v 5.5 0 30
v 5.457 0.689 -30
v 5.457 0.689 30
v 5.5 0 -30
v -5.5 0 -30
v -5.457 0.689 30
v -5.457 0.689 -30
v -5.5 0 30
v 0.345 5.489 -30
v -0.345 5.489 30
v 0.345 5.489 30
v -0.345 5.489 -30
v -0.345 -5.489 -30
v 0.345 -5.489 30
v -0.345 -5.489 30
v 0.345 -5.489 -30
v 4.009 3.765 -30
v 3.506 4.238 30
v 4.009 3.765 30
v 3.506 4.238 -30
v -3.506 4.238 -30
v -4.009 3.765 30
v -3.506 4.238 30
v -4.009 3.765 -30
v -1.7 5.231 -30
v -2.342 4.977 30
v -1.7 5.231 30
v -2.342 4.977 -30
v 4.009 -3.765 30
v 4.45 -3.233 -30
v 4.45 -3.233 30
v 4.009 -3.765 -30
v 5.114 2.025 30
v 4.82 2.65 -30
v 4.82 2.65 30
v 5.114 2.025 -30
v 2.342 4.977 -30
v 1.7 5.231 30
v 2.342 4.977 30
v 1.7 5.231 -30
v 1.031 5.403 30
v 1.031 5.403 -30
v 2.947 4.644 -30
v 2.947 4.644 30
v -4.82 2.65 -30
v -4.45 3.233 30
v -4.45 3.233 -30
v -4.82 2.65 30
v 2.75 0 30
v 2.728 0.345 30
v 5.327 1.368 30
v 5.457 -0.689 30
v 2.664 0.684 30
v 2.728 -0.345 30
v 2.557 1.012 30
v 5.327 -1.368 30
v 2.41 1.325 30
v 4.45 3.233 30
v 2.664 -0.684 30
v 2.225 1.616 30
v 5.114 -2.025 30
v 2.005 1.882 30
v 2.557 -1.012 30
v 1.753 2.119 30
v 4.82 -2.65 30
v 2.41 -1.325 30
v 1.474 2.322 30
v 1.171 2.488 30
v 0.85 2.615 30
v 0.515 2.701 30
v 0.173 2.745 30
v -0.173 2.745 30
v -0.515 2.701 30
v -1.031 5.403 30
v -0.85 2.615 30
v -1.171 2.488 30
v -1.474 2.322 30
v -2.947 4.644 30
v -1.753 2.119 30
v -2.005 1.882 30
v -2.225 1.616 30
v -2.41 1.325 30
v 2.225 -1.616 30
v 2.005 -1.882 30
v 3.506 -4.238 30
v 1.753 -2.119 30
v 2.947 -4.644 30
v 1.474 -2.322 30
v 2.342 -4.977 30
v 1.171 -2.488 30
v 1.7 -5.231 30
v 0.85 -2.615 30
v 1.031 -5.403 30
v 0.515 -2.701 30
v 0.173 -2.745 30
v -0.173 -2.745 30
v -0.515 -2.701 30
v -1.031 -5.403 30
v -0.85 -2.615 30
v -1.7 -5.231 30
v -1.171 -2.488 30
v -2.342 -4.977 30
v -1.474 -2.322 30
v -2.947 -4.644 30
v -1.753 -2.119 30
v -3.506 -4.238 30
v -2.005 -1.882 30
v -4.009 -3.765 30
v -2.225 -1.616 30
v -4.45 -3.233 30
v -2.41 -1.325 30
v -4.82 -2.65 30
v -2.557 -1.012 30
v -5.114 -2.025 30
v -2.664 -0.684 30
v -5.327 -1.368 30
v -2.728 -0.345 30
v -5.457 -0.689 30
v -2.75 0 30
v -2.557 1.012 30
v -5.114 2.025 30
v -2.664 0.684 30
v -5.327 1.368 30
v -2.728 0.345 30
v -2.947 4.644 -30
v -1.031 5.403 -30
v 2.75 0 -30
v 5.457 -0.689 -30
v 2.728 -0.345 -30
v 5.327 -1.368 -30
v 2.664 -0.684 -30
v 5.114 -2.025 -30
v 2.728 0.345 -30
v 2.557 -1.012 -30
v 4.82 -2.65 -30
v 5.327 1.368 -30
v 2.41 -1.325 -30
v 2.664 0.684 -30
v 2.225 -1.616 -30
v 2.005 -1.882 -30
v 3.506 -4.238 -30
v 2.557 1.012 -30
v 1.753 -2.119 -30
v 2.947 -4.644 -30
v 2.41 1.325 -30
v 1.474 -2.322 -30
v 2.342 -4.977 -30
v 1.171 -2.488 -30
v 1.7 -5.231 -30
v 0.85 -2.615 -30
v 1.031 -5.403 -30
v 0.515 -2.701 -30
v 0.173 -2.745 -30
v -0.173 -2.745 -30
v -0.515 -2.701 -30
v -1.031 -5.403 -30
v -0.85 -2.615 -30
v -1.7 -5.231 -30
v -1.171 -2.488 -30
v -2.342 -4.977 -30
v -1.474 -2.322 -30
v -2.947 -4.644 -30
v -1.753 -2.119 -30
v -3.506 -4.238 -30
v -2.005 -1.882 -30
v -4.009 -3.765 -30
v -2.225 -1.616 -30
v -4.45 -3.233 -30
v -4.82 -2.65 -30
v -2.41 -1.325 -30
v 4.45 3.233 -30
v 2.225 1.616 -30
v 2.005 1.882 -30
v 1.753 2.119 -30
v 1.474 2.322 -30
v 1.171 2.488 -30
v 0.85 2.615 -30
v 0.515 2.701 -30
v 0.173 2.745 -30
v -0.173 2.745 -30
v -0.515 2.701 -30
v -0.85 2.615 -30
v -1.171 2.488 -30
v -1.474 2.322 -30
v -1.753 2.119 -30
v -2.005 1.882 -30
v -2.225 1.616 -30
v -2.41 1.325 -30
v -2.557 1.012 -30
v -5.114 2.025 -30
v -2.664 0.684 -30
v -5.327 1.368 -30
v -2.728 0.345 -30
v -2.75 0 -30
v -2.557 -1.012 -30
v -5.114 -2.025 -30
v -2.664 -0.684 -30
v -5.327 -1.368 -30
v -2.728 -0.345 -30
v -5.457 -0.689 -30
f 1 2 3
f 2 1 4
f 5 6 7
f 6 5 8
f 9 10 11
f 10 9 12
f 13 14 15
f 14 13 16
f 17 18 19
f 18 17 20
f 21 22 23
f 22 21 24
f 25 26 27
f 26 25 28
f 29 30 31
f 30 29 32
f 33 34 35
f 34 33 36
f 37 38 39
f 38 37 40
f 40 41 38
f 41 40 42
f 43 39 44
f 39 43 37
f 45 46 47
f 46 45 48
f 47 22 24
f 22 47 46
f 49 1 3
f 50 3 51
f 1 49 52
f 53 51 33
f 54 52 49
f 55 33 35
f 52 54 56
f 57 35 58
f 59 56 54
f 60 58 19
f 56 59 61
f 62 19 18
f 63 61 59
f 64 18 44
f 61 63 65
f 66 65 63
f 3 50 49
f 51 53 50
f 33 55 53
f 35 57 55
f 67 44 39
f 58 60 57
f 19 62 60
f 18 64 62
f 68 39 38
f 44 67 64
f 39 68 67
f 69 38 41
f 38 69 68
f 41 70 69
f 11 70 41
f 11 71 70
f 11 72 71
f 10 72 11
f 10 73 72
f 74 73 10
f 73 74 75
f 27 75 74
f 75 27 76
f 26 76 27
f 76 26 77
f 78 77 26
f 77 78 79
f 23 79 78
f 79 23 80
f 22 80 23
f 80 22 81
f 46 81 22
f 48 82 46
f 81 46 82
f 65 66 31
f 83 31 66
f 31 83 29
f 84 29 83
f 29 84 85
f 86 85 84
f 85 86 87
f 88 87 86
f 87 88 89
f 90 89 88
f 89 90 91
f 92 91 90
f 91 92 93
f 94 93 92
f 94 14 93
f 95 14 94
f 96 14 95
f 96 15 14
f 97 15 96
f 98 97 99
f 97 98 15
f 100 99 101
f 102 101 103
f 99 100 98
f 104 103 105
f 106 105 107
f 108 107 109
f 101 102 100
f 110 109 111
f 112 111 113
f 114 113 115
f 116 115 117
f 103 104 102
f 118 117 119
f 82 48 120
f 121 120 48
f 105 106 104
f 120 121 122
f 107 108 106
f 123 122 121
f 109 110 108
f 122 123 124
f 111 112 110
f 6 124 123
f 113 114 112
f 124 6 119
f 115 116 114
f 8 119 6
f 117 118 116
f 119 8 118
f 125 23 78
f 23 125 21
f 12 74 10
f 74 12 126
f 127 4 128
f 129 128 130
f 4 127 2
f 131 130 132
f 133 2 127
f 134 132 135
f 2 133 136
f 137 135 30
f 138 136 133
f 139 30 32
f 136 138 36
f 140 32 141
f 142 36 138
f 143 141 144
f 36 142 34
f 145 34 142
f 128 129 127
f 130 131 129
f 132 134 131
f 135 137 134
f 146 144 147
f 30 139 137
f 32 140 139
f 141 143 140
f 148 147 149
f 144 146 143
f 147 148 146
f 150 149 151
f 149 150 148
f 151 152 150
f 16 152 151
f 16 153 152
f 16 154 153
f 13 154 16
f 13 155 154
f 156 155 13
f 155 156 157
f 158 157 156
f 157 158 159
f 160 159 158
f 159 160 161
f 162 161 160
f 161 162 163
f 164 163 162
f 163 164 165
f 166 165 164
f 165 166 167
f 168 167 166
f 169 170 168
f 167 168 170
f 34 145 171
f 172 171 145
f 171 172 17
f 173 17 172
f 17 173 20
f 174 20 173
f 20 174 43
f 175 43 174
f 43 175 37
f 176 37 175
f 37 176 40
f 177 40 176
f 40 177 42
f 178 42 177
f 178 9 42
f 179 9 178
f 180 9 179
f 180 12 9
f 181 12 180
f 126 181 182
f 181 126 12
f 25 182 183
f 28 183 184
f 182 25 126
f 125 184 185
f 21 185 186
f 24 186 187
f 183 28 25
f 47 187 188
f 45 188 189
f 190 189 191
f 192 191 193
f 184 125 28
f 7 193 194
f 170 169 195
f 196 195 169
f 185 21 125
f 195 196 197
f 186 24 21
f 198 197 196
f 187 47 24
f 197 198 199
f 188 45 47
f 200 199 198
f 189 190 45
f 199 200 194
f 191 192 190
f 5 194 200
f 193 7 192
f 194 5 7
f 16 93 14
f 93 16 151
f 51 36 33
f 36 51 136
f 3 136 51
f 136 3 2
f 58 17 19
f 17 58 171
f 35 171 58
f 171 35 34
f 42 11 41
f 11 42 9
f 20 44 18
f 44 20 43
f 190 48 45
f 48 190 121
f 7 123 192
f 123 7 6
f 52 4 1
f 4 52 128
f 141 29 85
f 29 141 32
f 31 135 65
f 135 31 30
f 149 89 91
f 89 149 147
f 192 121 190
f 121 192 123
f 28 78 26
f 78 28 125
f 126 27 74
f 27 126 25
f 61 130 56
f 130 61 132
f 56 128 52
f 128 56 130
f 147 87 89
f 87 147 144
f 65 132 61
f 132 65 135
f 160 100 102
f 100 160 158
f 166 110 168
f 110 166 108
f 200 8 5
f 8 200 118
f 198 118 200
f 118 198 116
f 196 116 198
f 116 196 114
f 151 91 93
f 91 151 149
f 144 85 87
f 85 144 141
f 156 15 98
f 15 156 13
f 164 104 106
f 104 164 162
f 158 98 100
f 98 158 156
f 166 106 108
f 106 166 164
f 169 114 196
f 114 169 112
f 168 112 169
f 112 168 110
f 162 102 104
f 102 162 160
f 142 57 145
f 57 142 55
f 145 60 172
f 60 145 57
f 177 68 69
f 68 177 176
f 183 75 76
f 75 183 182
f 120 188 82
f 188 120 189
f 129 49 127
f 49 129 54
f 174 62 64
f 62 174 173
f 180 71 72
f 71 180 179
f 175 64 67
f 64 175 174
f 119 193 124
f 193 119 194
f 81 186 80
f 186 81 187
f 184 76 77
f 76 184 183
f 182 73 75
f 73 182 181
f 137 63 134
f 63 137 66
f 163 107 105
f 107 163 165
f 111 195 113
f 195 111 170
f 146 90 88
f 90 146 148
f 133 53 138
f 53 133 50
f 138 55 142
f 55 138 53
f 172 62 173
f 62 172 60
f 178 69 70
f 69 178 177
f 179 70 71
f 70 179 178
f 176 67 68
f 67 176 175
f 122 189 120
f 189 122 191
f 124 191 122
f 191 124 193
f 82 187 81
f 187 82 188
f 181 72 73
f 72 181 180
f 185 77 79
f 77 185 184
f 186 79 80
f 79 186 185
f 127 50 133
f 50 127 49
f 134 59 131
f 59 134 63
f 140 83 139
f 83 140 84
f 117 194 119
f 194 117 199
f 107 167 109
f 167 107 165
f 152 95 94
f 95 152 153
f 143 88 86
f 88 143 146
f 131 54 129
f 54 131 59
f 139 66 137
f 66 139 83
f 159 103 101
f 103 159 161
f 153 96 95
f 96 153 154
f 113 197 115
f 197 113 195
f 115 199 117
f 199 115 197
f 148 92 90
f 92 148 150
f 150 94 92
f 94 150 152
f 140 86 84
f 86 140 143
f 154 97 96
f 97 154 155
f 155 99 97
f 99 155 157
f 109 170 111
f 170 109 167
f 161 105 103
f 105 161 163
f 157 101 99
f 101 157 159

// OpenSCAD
$fn = 50;


difference() {
	union() {
		translate(v = [0, 0, -30.0000000000]) {
			cylinder(h = 60, r = 5.5000000000);
		}
	}
	union() {
		translate(v = [0, 0, -100.0000000000]) {
			cylinder(h = 200, r = 2.7500000000);
		}
	}
}
